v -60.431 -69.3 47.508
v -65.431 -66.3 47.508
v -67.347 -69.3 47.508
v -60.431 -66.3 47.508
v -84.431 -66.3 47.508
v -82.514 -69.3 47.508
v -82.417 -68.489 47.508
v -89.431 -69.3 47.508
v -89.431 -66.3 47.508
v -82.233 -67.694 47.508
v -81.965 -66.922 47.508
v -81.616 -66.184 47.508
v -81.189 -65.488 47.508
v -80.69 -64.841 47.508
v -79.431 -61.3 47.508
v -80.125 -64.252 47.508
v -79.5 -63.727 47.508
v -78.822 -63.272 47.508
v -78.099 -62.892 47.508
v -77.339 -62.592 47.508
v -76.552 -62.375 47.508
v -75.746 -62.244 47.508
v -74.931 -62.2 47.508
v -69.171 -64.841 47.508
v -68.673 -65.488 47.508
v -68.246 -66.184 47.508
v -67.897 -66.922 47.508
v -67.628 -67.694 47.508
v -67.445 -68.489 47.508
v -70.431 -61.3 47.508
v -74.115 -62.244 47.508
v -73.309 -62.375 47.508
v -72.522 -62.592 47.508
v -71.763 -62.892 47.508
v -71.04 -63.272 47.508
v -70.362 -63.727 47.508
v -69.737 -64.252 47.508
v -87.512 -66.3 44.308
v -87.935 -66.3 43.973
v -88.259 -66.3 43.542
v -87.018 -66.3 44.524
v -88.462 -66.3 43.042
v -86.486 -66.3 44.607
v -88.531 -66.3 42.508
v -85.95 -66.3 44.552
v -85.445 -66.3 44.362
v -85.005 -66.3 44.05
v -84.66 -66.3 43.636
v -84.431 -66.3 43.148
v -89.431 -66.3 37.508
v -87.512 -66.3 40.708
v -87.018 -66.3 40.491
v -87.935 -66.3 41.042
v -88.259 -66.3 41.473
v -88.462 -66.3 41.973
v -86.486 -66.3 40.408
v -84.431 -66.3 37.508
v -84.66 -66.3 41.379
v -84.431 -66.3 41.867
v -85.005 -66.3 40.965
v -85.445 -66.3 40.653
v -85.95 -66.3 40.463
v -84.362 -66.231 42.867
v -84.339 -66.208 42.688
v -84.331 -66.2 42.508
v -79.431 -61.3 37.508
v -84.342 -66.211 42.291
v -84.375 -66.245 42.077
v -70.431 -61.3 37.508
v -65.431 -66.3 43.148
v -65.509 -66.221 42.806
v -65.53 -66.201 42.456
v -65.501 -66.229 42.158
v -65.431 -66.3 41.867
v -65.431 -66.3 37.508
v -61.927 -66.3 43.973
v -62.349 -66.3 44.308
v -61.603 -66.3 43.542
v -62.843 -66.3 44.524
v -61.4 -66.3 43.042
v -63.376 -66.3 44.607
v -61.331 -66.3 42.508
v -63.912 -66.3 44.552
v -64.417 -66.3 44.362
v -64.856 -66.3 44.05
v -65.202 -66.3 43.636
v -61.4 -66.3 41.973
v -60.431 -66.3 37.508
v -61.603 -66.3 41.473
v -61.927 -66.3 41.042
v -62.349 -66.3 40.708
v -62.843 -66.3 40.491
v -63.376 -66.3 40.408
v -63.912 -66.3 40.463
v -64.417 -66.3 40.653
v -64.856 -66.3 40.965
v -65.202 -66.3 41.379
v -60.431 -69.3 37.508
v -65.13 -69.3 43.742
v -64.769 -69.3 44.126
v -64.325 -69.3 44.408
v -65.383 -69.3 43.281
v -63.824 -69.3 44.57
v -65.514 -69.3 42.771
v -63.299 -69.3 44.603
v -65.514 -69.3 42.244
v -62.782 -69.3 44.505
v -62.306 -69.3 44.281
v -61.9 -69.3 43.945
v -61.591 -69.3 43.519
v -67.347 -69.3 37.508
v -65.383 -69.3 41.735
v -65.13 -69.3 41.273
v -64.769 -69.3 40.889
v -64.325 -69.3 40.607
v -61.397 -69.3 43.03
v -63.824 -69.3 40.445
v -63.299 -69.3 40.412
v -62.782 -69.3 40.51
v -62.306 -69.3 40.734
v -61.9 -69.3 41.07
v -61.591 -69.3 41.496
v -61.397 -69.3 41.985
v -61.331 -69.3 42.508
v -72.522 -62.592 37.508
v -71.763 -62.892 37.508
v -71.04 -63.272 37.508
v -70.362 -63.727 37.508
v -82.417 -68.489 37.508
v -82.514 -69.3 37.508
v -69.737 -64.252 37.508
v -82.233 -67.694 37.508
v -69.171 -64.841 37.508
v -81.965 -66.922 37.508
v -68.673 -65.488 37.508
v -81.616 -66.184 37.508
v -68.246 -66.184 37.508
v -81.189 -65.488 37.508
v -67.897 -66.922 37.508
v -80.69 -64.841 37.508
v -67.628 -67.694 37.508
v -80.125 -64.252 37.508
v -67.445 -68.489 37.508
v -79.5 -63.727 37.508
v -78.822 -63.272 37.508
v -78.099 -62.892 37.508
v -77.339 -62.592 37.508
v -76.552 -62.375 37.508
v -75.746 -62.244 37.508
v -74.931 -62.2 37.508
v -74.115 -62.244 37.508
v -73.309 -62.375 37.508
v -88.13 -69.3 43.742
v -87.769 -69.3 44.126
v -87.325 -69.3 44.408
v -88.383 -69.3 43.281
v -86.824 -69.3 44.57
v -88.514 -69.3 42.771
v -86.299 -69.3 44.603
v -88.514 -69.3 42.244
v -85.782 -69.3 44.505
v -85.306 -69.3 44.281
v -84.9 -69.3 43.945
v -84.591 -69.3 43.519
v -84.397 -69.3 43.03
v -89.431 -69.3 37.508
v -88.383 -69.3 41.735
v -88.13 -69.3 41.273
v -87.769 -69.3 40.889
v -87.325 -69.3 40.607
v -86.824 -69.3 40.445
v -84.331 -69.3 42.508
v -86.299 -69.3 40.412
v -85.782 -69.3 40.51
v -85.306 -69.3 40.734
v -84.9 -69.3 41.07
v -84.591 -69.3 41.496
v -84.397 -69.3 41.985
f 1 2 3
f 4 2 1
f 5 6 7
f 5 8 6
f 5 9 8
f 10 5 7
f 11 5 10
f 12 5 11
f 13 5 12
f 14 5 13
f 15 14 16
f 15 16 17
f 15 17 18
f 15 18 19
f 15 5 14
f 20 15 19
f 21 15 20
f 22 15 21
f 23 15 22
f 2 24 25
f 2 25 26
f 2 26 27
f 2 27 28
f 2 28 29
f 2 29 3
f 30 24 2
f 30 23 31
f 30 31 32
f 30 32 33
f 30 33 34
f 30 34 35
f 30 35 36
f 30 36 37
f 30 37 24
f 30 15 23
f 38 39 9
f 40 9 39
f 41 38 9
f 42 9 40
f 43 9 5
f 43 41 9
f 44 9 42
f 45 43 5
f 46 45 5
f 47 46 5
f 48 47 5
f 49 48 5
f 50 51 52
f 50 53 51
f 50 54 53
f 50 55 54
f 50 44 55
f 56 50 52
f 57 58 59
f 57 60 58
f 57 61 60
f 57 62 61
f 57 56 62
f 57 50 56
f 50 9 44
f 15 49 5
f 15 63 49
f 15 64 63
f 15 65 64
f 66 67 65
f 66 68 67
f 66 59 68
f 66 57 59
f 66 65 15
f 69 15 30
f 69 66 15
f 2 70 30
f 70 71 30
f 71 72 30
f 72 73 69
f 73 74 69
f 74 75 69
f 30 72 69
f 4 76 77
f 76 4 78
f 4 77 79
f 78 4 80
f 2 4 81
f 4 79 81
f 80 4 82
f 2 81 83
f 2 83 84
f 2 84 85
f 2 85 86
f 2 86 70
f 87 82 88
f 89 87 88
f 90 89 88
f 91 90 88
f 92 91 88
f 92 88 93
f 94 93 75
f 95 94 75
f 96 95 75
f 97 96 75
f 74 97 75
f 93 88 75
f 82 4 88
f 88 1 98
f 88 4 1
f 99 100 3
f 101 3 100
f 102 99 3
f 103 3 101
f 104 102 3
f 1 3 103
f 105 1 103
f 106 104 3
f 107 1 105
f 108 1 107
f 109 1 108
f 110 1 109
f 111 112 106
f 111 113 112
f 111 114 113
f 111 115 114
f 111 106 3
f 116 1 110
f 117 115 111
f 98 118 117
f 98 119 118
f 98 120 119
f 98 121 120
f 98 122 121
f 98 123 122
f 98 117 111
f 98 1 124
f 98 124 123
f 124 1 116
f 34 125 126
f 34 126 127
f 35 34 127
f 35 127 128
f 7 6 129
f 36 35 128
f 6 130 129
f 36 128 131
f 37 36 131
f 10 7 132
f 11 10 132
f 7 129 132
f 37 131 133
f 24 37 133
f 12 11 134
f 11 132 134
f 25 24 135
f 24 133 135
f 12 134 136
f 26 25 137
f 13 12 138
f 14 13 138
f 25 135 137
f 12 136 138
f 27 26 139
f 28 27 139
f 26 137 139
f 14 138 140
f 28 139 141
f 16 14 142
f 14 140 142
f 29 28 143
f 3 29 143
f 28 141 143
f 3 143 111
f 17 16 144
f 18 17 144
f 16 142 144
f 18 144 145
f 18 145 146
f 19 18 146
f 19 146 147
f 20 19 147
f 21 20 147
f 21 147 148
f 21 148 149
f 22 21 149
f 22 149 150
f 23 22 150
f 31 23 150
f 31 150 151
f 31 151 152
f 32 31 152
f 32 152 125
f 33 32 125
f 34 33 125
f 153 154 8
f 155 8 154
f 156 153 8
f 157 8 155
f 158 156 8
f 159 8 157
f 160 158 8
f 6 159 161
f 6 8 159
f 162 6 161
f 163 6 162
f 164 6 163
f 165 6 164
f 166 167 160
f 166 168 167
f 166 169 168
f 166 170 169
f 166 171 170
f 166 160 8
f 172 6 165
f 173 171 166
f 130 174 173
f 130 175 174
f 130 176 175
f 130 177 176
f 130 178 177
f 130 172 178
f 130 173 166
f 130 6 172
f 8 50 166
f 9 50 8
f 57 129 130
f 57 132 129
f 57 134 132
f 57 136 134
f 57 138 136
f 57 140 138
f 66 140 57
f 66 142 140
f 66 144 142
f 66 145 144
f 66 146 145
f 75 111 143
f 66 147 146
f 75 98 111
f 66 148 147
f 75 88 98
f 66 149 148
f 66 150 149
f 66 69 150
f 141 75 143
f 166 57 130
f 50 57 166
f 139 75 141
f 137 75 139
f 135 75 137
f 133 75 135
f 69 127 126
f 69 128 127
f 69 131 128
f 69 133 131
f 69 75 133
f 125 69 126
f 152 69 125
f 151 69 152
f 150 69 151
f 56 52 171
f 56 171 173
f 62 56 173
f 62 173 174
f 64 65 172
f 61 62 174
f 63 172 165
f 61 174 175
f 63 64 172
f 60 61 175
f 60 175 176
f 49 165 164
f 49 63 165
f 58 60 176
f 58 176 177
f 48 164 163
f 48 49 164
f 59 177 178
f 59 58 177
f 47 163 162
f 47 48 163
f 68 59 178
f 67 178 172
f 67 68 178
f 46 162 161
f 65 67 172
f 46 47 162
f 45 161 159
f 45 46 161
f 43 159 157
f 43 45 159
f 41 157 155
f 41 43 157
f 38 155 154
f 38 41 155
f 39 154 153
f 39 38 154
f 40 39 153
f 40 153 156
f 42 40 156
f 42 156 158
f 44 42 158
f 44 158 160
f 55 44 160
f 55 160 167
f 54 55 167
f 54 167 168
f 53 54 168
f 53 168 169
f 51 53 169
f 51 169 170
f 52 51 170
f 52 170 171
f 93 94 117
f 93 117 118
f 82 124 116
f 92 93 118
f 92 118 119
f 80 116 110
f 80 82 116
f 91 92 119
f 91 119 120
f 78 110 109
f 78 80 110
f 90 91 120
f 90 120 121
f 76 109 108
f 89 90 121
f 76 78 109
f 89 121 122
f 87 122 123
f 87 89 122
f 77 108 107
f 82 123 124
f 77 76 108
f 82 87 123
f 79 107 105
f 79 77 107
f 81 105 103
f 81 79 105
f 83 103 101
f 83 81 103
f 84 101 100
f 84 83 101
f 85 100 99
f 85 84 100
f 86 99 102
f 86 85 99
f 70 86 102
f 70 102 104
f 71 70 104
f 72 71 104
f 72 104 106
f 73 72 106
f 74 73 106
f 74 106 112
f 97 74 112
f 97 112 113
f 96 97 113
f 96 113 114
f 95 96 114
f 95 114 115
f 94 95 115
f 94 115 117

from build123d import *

# Parameters (mm, degrees)
SKETCH_W     = 29
SKETCH_H     = 10
SKETCH_R     = 2.1
PAD_DEPTH    = 10
SKETCH001_R  = 7.6
POCKET_DEPTH = 10.001


with BuildPart() as part:
    # Sketch → Pad (new body)
    with BuildSketch(Plane(origin=(-52.3, -59.3, 36), x_dir=(1, 0, 0), z_dir=(0, -1, 0))):
        with Locations((-22.630757, 6.507574)):
            Rectangle(SKETCH_W, SKETCH_H)
        with Locations((-34.130757, 6.507574)):
            Circle(SKETCH_R, mode=Mode.SUBTRACT)
        with Locations((-11.130757, 6.507574)):
            Circle(SKETCH_R, mode=Mode.SUBTRACT)
    extrude(amount=PAD_DEPTH)

    # Sketch001 → Pocket (cut, through all)
    with BuildSketch(Plane(origin=(-52.3, -59.3, 37.507574), x_dir=(1, 0, 0), z_dir=(0, 0, -1))):
        with Locations((-22.630757, 10.5)):
            Circle(SKETCH001_R)
        Polygon((-8.130757, 7), (-13.130757, 7), (-18.130757, 2), (-27.130757, 2), (-32.130757, 7), (-37.130757, 7), (-37.130757, 0), (-8.130757, 0), align=None)
    extrude(amount=-POCKET_DEPTH, mode=Mode.SUBTRACT)


solid = part.part
